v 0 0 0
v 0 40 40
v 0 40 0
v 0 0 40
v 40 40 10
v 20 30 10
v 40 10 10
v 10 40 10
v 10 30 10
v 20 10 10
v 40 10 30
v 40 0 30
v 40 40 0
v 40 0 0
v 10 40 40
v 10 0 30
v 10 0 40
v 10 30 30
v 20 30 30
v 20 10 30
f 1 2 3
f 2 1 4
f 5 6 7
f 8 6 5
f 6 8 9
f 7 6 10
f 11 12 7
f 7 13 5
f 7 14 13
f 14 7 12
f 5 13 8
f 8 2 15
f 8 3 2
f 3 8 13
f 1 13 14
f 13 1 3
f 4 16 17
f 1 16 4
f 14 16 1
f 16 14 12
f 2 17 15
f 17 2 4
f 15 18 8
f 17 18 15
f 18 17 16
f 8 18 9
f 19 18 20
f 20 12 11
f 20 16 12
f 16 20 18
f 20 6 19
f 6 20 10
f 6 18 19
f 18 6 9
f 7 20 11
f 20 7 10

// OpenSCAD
cube([40,40,10]);
translate([0,0,10])
cube([10,40,30]);
translate([10,0,10])
cube([10,30,20]);
translate([20,0,10])
cube([20,10,20]);
